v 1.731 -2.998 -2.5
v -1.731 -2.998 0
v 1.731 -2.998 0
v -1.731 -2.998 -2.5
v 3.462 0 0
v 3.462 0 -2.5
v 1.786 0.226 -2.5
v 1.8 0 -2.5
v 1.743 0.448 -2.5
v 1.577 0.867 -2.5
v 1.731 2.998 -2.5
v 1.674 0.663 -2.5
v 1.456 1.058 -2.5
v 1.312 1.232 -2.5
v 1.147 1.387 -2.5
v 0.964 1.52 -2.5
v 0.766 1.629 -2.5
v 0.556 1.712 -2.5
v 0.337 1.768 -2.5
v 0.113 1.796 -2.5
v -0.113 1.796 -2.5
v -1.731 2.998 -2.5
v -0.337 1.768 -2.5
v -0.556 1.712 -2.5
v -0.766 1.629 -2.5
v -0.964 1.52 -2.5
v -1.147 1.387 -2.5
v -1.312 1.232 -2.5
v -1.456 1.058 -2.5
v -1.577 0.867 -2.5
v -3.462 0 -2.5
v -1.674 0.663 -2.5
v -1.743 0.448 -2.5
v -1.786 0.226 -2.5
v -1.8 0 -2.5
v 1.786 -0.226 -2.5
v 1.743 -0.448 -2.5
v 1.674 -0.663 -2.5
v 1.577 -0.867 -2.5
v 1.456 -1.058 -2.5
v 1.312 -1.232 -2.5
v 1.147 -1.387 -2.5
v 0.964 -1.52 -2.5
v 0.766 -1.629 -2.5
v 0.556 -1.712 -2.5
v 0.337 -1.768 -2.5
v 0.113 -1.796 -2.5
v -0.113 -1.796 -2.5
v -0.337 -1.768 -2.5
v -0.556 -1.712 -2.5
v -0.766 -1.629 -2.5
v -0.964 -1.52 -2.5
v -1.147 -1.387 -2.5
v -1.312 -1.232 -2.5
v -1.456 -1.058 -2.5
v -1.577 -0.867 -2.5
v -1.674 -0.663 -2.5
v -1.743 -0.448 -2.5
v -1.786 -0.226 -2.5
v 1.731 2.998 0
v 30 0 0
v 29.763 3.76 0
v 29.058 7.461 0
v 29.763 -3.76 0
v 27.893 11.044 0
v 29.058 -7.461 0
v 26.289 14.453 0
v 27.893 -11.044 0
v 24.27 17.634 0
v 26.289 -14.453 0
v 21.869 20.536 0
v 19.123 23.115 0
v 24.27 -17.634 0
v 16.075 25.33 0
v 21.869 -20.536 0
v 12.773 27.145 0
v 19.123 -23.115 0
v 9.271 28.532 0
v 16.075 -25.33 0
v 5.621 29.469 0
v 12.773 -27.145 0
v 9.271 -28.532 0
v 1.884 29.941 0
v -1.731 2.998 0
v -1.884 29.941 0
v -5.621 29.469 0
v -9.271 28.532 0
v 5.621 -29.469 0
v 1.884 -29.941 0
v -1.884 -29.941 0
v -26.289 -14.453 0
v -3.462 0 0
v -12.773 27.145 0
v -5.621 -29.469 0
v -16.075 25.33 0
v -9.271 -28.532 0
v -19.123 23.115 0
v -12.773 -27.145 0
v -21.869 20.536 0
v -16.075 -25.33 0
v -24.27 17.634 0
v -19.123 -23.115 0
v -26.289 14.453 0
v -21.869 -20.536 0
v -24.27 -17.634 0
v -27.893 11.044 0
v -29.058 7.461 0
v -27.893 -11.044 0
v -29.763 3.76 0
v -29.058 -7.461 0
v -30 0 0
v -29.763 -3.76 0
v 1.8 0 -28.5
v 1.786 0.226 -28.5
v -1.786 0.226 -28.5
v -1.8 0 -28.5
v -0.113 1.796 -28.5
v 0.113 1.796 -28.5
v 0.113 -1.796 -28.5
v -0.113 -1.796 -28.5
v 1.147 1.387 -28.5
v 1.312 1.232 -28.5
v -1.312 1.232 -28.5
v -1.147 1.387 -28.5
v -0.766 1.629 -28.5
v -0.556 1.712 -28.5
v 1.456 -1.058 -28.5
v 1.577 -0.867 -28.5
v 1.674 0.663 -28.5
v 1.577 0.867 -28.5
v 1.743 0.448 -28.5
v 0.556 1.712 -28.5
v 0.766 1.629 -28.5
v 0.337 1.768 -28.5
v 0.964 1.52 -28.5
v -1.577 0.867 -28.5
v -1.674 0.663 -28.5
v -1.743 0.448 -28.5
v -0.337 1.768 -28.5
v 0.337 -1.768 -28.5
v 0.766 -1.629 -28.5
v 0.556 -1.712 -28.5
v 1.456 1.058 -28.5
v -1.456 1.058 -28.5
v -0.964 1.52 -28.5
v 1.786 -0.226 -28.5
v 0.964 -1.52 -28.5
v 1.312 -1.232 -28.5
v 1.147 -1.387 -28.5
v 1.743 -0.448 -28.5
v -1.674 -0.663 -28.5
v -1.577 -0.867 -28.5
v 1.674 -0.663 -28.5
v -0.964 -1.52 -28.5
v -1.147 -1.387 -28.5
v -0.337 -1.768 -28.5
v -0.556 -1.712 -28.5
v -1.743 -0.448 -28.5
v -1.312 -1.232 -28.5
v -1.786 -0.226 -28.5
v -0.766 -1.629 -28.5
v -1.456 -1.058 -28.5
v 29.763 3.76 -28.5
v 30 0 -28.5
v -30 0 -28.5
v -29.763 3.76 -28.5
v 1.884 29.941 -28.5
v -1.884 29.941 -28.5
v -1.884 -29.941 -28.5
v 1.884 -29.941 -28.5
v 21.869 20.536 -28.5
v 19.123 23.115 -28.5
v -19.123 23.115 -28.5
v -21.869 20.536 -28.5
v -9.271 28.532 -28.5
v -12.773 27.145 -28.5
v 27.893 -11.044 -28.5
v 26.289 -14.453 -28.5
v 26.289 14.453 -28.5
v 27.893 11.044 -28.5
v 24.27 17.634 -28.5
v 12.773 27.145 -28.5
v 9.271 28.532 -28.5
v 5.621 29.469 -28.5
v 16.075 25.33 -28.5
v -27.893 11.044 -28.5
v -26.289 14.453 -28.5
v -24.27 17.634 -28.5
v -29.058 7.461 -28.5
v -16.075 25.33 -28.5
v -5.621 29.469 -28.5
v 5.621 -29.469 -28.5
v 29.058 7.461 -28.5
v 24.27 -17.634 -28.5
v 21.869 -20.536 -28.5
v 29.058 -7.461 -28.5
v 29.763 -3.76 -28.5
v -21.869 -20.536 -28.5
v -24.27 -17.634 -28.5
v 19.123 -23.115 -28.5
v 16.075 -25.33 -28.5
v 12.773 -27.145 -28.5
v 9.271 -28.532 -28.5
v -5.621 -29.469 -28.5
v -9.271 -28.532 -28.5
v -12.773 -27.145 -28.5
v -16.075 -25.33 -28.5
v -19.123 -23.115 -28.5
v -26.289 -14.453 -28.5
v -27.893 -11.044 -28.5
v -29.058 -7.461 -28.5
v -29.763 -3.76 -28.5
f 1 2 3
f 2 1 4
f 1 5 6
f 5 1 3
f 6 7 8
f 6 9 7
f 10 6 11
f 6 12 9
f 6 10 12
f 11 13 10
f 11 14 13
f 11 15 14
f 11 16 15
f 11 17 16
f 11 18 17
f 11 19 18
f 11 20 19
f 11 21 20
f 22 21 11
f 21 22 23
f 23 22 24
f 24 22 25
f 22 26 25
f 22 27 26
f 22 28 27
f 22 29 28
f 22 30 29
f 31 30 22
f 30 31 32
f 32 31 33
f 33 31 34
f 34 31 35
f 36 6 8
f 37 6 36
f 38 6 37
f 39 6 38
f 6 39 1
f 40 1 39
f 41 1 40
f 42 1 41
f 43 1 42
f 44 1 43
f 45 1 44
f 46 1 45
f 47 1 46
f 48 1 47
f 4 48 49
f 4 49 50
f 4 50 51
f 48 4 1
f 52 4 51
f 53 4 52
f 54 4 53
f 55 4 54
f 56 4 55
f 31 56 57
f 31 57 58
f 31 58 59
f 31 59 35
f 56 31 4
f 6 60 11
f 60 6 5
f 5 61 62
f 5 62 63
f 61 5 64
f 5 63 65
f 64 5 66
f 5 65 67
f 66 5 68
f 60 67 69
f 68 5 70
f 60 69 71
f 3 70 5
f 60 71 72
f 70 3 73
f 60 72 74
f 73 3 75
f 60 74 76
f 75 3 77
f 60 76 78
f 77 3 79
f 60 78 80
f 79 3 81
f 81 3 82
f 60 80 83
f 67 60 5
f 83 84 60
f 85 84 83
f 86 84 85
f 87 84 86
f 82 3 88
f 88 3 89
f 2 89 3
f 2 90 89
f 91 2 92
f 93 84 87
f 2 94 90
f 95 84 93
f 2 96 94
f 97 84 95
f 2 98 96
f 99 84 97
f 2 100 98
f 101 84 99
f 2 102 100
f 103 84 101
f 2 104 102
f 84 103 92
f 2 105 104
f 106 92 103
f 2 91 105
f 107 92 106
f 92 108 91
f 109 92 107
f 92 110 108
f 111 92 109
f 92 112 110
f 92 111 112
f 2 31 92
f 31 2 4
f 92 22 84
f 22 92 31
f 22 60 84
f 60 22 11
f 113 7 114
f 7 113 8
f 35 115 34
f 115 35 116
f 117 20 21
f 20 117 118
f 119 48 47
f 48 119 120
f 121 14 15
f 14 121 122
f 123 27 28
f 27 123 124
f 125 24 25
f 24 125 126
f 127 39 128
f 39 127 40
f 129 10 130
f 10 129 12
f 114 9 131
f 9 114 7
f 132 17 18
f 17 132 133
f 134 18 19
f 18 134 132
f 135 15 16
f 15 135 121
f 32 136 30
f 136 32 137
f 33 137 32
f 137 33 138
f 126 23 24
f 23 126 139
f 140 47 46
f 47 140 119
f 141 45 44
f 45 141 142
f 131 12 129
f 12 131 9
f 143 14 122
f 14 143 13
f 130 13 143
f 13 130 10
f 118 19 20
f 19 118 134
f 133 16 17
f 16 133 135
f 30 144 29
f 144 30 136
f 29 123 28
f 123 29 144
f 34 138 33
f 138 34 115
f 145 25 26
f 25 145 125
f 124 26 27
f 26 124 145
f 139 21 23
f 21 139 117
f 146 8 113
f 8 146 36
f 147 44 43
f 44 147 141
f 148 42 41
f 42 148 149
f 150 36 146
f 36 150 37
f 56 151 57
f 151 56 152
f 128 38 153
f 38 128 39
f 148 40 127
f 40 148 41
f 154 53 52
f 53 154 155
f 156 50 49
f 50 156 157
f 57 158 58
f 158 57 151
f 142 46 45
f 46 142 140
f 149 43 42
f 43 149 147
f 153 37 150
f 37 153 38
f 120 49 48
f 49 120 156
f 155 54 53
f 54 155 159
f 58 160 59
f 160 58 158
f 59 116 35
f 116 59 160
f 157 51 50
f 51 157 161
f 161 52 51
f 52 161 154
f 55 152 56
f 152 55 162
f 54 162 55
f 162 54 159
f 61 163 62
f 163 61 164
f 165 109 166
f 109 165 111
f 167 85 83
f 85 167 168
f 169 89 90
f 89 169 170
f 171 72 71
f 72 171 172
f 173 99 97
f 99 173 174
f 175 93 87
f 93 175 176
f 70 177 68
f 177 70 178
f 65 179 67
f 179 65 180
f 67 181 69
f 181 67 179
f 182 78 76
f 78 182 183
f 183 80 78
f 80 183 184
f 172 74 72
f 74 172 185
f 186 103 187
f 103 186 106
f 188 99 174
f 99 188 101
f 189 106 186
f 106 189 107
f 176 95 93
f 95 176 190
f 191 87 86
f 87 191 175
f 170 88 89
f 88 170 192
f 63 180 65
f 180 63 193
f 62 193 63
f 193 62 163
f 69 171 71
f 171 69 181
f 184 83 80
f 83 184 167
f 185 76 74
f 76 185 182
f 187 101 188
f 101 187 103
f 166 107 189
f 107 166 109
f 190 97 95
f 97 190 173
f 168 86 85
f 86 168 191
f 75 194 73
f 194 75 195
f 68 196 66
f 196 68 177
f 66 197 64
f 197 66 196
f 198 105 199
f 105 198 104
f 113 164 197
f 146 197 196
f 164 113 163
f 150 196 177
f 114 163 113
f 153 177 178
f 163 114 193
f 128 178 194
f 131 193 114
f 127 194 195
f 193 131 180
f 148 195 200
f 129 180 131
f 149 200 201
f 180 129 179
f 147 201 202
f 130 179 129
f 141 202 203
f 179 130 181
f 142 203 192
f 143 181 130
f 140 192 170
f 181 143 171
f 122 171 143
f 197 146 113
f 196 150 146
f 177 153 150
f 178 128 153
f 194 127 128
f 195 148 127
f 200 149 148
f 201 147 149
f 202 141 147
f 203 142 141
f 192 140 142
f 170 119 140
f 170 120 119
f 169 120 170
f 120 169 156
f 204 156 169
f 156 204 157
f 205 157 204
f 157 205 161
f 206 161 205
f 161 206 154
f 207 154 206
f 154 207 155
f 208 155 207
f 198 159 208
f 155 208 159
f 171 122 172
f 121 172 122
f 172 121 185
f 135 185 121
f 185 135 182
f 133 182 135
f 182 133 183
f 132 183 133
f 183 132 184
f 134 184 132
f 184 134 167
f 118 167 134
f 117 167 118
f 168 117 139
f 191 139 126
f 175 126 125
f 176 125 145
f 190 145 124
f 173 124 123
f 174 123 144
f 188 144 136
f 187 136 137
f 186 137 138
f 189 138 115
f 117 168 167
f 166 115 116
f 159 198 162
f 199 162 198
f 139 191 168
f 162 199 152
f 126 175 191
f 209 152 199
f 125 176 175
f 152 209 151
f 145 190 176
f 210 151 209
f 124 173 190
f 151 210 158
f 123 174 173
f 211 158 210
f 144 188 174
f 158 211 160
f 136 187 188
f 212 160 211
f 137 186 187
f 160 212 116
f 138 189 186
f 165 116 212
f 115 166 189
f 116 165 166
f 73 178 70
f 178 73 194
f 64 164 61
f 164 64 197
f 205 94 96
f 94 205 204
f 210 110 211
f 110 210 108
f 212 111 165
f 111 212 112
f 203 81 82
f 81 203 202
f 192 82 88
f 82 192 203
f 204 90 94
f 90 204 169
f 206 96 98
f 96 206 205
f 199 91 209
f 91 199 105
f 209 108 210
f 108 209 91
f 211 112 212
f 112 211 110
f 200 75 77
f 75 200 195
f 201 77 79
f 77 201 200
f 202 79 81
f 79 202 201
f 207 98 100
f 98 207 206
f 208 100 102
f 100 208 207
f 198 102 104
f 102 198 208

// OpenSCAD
$fn = 50;

difference() {
	union() {
		translate(v = [0, 0, -28.5]) {
			cylinder(h = 28.5, r = 30.0);
		}
	}
	union() {
		translate(v = [0, 0, 0]) {
			rotate(a = [0, 0, 0]) {
				difference() {
					union() {
						translate(v = [0, 0, -2.5]) {
							linear_extrude(height = 2.5) {
								polygon(points = [[3.4619999999999997, 0.0], [1.7310000000000003, 2.9981799479017264], [-1.7309999999999992, 2.9981799479017264], [-3.4619999999999997, 4.2397272186481365e-16], [-1.7310000000000014, -2.998179947901726], [1.7309999999999977, -2.9981799479017277]]);
							}
						}
					}
					union();
				}
			}
		}
		#translate(v = [0, 0, -100.0]) {
			cylinder(h = 200, r = 1.8);
		}
	}
}
